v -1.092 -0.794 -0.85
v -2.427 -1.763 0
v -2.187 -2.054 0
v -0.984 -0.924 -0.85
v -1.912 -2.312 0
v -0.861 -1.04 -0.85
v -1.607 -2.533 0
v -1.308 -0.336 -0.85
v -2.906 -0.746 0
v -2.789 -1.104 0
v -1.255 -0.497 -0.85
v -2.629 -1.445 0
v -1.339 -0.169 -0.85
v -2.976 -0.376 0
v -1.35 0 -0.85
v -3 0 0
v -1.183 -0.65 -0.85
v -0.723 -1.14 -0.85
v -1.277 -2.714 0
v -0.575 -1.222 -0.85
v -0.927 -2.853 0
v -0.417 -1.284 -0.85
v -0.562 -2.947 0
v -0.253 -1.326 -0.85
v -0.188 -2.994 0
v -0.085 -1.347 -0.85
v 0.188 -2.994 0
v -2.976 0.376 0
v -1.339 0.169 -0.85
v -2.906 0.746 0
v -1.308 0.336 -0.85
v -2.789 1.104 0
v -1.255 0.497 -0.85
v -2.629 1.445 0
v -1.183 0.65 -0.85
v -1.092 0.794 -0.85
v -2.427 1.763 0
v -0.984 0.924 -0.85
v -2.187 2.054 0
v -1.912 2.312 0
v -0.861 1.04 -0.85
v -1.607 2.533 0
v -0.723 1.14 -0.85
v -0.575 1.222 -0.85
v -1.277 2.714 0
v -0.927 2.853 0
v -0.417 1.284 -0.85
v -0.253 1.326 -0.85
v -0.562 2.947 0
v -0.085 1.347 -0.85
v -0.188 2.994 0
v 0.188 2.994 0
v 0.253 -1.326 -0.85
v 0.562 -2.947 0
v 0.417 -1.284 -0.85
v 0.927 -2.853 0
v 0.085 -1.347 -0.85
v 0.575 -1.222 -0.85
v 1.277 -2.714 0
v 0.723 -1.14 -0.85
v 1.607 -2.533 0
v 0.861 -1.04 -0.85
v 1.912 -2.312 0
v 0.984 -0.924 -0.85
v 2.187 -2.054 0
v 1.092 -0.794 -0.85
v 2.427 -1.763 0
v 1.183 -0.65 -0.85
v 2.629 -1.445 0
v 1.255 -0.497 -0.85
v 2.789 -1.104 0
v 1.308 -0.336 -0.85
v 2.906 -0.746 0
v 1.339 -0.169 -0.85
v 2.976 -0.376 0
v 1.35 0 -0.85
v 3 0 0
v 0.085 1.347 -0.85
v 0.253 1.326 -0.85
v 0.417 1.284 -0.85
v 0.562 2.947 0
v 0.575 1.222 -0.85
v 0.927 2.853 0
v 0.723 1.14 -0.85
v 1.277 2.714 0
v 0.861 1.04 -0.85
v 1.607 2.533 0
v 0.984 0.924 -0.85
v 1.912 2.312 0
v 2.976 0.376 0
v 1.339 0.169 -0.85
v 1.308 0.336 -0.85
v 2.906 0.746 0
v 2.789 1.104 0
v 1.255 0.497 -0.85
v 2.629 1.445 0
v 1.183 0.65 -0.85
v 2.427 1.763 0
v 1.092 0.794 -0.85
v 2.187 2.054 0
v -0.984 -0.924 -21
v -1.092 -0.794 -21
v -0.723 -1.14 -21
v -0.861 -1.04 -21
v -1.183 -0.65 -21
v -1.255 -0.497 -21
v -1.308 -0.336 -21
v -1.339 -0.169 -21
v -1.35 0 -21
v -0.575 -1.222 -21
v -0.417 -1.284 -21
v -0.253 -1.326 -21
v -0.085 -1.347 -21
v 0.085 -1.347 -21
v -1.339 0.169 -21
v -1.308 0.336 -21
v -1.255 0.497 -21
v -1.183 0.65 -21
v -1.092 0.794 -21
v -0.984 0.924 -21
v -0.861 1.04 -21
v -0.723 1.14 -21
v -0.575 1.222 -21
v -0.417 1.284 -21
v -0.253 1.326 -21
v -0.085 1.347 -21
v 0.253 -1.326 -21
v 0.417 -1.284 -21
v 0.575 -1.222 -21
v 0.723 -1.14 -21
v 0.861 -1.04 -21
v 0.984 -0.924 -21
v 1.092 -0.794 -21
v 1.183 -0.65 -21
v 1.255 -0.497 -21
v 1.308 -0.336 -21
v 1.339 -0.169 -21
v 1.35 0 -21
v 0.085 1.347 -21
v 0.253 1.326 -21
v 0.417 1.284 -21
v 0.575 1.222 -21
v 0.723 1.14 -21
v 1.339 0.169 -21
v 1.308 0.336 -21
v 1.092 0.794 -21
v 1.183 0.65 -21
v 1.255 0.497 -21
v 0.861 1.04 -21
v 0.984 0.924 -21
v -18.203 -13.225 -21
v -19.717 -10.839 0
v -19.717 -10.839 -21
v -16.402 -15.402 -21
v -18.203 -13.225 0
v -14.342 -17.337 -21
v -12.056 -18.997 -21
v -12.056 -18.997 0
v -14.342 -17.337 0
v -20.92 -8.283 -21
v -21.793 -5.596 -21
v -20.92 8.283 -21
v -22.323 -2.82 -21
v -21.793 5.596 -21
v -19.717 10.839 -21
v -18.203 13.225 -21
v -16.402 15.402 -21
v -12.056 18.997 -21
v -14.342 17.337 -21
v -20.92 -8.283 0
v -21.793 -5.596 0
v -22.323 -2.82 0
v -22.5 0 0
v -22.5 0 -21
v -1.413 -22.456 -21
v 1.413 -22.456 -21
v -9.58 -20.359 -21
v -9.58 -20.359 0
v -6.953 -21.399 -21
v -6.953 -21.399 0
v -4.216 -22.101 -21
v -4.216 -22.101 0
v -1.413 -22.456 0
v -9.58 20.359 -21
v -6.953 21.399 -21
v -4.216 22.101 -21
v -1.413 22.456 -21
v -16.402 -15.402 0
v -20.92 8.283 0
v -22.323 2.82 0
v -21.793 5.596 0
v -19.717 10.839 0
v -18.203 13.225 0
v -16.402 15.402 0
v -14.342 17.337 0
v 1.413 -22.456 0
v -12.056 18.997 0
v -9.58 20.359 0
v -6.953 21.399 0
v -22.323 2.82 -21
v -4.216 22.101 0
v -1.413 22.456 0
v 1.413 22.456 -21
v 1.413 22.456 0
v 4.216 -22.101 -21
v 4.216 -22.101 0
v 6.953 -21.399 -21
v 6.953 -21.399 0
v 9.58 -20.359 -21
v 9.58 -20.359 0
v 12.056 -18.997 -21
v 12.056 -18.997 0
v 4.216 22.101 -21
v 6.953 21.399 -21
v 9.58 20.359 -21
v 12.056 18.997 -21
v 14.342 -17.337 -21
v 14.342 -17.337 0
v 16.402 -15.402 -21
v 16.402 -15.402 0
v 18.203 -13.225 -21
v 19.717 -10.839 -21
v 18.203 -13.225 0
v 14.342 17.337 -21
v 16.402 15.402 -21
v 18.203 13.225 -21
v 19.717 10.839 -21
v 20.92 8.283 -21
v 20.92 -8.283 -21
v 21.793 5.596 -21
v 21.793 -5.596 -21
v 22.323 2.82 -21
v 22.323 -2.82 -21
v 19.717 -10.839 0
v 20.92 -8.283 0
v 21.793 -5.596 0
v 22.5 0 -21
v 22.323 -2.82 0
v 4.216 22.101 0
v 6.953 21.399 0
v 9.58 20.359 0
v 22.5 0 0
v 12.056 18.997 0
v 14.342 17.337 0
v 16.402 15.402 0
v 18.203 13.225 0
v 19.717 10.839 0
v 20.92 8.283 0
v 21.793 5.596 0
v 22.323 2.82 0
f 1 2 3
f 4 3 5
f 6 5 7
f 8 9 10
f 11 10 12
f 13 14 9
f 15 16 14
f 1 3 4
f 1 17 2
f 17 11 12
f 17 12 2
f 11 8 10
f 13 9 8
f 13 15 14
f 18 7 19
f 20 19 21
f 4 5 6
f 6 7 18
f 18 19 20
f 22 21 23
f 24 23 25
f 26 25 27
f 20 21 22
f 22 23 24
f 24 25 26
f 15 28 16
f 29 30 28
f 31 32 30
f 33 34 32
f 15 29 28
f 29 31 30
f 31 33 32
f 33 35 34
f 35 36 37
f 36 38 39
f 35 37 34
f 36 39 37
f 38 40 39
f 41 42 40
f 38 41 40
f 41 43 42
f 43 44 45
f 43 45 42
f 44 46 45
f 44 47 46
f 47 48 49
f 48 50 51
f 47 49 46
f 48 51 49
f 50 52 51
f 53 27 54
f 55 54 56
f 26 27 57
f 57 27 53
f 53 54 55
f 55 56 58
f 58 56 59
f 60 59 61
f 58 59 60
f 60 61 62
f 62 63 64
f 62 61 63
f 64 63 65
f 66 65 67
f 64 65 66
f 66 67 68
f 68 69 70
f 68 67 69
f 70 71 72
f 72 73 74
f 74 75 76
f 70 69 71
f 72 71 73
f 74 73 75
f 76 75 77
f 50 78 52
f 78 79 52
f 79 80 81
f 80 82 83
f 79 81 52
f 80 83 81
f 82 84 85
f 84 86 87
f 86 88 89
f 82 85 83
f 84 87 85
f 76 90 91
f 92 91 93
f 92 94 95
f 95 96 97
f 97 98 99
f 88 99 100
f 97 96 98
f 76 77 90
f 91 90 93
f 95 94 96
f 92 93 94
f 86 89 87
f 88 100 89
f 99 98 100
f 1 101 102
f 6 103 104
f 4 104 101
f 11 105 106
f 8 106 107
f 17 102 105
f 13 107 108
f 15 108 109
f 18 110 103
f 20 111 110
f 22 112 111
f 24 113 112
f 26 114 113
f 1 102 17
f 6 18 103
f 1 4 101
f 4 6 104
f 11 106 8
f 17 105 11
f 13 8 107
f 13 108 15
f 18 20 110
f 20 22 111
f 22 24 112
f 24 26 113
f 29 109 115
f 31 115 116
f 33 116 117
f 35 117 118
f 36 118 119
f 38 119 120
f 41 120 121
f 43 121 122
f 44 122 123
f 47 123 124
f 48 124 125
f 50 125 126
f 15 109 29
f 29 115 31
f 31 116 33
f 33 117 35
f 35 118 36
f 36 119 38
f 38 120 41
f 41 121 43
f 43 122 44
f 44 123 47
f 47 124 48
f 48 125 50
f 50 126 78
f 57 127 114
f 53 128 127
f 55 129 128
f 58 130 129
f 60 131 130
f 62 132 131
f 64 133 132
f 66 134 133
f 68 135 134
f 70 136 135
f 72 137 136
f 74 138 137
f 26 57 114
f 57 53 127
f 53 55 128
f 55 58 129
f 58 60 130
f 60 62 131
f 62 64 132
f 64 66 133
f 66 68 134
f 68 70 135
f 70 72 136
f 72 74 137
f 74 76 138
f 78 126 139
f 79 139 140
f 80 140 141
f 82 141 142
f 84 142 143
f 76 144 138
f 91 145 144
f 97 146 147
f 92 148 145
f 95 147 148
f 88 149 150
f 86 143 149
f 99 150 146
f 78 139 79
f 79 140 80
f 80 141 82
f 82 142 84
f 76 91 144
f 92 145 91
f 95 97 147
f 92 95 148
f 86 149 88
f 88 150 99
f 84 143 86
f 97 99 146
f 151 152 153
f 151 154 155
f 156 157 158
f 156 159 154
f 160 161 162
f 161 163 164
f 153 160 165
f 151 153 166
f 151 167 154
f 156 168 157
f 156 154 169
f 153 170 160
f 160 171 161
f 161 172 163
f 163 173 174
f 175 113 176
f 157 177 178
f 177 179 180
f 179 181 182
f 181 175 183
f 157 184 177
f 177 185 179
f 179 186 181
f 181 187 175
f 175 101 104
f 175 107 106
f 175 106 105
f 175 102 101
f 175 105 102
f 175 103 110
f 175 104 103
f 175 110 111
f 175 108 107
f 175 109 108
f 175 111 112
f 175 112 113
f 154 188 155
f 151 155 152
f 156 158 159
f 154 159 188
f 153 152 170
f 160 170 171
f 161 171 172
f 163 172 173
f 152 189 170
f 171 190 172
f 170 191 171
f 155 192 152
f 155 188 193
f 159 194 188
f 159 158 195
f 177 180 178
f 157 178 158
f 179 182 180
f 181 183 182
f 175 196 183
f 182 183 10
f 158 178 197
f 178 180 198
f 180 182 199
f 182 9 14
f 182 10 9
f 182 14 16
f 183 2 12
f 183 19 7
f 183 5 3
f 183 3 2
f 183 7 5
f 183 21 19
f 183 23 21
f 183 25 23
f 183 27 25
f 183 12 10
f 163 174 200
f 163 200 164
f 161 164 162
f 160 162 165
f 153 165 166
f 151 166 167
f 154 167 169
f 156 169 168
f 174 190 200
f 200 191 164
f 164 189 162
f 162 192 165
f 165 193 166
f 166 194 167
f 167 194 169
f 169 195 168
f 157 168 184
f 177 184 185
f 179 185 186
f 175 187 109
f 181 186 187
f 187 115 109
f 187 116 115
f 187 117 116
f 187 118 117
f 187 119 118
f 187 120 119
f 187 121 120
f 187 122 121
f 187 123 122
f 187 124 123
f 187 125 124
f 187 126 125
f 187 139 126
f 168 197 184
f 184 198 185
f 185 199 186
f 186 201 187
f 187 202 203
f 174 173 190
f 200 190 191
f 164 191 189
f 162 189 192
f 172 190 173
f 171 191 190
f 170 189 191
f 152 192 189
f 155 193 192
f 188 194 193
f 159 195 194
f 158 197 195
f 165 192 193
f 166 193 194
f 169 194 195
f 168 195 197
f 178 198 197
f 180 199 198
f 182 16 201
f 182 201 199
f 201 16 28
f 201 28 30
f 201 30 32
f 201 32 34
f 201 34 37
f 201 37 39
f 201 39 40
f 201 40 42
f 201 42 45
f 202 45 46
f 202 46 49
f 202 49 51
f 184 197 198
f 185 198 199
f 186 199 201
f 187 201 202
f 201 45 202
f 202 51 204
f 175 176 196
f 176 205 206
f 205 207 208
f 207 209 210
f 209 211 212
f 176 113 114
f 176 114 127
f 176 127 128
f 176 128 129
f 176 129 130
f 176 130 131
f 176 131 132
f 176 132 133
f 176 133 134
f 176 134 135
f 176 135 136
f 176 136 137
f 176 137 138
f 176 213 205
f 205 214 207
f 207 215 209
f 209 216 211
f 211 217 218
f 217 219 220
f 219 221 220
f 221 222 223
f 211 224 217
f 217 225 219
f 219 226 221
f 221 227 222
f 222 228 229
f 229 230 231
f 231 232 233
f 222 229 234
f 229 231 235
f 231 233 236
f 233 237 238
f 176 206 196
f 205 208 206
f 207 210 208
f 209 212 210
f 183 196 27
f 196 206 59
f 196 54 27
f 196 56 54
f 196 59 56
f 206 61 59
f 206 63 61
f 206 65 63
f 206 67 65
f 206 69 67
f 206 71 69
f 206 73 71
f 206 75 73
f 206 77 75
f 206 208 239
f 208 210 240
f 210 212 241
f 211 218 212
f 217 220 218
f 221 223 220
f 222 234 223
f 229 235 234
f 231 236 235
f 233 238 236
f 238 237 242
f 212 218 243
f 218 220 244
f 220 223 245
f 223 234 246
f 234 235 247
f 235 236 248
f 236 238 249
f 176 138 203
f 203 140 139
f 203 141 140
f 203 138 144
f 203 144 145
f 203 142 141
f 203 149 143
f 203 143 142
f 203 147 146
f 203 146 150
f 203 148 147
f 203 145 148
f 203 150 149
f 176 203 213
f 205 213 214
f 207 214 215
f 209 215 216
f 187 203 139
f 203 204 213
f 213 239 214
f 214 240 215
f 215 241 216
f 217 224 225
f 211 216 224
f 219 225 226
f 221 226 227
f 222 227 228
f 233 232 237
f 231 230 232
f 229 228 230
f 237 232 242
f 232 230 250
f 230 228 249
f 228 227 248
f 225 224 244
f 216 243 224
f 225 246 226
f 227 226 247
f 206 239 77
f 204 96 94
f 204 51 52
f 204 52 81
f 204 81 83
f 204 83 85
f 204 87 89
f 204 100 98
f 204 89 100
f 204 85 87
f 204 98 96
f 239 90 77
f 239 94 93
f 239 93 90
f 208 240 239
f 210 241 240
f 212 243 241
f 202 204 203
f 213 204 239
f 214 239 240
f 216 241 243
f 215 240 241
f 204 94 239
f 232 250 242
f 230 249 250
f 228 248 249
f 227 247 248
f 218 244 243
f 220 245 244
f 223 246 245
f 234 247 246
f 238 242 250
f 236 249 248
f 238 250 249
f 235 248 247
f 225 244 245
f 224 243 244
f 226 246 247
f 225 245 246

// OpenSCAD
$fn = 50;

difference() {
	union() {
		translate(v = [0, 0, -21.0]) {
			cylinder(h = 21, r = 22.5);
		}
	}
	union() {
		translate(v = [0, 0, 0]) {
			rotate(a = [0, 0, 0]) {
				difference() {
					union() {
						translate(v = [0, 0, -24.0]) {
							cylinder(h = 24, r = 1.0);
						}
						translate(v = [0, 0, -0.85]) {
							cylinder(h = 0.85, r1 = 1.35, r2 = 3.0);
						}
						translate(v = [0, 0, -24.0]) {
							cylinder(h = 24, r = 1.35);
						}
						translate(v = [0, 0, -24.0]) {
							cylinder(h = 24, r = 1.0);
						}
					}
					union();
				}
			}
		}
	}
}
